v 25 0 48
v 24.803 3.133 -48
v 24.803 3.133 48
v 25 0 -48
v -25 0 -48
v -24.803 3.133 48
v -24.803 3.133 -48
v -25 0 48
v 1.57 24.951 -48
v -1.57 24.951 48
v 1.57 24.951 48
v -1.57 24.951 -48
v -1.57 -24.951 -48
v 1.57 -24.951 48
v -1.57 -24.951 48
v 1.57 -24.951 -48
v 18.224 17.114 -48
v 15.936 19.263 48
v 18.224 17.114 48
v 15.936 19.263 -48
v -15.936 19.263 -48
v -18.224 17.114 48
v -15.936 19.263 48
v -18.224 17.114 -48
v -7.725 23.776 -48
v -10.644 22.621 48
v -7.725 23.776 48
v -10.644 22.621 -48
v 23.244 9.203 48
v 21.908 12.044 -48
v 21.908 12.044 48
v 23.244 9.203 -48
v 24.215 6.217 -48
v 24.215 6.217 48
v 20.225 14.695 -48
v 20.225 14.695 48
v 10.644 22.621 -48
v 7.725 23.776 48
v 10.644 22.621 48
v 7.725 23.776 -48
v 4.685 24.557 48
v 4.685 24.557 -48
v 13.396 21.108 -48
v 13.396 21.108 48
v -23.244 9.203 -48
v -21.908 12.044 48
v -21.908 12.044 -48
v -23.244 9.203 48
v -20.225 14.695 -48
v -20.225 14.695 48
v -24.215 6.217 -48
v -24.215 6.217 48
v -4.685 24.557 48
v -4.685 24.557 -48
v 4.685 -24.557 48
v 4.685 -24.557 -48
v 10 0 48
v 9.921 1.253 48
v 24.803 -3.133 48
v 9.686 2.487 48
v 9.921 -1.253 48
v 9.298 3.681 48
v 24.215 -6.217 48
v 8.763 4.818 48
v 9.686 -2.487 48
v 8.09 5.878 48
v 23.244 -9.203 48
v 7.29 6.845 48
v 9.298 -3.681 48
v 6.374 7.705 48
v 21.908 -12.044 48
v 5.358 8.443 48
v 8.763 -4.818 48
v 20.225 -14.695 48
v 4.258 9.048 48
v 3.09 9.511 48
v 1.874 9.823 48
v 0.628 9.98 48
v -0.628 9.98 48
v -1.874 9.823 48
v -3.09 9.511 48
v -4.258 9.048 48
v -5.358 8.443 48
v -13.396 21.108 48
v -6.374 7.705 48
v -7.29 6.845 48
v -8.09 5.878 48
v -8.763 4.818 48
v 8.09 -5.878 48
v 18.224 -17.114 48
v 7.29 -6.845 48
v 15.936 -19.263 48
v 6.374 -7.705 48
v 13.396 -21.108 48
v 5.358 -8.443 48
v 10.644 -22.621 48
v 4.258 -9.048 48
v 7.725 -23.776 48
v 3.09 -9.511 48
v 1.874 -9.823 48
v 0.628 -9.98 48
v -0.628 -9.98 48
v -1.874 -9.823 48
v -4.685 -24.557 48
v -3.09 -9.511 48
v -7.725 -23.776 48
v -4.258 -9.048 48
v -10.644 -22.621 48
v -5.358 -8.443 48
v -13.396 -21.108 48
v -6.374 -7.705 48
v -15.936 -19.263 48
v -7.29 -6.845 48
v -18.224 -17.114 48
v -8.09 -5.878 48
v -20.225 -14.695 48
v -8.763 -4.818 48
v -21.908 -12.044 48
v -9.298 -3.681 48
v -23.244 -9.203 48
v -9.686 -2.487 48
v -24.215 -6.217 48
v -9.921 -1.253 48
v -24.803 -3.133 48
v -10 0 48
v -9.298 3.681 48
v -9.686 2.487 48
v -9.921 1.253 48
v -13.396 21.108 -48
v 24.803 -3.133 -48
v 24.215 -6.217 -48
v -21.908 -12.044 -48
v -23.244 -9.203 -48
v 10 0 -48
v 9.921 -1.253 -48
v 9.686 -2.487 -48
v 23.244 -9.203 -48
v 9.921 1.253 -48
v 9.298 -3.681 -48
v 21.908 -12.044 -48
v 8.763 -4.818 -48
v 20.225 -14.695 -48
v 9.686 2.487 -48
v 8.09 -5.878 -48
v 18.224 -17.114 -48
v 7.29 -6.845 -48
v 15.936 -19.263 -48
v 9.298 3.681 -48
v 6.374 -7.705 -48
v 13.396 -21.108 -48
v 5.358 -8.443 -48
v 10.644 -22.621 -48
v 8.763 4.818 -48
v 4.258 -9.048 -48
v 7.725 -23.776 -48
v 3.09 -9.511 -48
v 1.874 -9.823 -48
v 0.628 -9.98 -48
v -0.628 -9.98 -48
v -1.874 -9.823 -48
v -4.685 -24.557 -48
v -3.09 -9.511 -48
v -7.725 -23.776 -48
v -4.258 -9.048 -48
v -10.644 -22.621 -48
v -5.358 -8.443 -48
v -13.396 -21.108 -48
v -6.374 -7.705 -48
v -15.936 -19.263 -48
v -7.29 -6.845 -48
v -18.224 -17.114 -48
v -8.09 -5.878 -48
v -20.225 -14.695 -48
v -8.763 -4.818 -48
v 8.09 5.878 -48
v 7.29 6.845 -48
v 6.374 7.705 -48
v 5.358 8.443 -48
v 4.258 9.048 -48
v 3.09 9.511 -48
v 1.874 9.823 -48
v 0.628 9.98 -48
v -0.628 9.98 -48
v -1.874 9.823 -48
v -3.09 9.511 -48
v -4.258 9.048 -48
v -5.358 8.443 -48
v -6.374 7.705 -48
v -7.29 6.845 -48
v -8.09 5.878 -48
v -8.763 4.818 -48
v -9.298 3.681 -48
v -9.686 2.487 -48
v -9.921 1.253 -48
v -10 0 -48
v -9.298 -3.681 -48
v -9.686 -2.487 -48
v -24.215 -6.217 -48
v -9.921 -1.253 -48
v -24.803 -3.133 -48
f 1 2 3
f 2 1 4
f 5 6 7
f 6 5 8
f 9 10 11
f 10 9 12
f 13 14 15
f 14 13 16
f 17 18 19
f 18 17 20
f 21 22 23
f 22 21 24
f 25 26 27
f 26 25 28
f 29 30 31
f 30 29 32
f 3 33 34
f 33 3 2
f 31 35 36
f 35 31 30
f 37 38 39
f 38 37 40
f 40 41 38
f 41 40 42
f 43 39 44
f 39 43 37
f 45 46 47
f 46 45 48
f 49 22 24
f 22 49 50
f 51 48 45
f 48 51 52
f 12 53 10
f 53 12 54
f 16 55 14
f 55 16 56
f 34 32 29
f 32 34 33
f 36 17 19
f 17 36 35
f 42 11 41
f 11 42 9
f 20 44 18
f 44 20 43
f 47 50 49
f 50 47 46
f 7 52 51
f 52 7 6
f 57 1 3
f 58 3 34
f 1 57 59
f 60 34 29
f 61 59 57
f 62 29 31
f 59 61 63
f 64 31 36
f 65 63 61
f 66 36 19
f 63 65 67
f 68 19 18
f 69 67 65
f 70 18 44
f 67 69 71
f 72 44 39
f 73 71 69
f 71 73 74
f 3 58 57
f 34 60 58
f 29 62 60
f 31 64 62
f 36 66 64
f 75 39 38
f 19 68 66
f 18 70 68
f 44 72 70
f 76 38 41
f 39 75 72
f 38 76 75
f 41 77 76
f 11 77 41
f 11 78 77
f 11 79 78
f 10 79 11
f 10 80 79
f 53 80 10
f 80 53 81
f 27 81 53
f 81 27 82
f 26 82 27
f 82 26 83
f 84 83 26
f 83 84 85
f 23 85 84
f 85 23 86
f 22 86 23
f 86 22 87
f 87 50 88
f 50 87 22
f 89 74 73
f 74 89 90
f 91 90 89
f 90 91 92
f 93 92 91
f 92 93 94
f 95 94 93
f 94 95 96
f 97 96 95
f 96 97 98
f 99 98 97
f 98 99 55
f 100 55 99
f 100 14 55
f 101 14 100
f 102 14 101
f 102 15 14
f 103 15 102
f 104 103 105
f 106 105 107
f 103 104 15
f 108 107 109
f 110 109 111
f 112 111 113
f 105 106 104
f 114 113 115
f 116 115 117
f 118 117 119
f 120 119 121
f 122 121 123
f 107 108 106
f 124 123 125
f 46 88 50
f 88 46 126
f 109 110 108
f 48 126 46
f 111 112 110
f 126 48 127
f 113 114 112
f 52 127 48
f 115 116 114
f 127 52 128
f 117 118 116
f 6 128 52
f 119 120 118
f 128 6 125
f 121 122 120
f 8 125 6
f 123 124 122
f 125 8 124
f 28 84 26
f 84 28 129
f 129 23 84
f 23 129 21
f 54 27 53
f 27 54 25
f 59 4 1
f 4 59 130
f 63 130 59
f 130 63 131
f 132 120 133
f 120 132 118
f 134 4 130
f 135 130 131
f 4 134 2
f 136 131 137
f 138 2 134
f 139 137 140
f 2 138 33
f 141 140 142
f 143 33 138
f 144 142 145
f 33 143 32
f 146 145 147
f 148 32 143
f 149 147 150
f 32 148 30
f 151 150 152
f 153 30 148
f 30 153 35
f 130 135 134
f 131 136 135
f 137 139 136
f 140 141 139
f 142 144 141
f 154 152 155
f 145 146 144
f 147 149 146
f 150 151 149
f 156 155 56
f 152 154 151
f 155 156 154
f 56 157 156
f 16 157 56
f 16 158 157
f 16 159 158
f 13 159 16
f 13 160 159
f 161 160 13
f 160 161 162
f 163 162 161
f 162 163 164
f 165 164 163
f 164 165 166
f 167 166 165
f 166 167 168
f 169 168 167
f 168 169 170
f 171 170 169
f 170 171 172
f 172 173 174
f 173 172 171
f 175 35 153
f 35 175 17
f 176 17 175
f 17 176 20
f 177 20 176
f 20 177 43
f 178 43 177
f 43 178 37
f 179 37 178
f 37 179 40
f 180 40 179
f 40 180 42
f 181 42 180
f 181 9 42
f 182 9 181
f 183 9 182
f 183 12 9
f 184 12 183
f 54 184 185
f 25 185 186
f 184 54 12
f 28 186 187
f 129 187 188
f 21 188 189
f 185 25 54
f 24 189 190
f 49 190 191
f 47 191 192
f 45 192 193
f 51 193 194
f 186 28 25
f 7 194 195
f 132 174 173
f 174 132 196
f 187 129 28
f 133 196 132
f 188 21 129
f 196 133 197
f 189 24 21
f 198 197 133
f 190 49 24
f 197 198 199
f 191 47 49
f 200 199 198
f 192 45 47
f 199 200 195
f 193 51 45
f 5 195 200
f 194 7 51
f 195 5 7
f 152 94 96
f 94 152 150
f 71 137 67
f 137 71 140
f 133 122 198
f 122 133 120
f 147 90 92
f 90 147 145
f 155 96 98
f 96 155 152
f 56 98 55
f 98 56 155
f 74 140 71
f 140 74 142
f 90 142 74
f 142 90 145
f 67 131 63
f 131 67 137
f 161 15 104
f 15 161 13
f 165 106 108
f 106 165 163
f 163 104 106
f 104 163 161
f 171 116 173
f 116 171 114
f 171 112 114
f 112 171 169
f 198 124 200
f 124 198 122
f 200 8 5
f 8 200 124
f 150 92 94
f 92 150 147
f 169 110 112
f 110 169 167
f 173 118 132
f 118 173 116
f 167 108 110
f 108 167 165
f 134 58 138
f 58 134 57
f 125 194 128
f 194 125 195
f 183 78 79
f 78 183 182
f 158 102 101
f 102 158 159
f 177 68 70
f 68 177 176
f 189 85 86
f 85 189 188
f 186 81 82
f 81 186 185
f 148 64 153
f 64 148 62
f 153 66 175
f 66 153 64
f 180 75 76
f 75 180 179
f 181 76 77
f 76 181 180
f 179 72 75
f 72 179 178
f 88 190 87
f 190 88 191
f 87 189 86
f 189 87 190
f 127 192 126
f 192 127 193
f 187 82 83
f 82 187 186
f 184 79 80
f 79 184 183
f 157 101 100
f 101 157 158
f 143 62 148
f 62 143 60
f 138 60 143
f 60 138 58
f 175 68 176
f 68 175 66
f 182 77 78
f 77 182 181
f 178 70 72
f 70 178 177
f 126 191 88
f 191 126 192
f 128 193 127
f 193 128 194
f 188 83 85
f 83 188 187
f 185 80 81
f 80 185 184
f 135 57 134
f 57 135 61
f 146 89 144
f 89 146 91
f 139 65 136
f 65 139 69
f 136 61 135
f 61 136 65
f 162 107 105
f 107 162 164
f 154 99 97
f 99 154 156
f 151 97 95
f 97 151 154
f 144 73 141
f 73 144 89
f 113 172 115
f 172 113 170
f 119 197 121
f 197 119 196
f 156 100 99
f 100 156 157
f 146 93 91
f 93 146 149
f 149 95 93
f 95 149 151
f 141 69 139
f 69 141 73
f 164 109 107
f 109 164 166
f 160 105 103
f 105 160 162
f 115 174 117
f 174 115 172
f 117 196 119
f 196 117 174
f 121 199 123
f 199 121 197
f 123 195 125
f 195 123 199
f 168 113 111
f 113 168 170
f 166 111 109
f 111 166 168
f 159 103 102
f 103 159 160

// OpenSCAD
$fn = 50;


difference() {
	union() {
		translate(v = [0, 0, -48.0000000000]) {
			cylinder(h = 96, r = 25.0000000000);
		}
	}
	union() {
		translate(v = [0, 0, -100.0000000000]) {
			cylinder(h = 200, r = 10);
		}
	}
}
